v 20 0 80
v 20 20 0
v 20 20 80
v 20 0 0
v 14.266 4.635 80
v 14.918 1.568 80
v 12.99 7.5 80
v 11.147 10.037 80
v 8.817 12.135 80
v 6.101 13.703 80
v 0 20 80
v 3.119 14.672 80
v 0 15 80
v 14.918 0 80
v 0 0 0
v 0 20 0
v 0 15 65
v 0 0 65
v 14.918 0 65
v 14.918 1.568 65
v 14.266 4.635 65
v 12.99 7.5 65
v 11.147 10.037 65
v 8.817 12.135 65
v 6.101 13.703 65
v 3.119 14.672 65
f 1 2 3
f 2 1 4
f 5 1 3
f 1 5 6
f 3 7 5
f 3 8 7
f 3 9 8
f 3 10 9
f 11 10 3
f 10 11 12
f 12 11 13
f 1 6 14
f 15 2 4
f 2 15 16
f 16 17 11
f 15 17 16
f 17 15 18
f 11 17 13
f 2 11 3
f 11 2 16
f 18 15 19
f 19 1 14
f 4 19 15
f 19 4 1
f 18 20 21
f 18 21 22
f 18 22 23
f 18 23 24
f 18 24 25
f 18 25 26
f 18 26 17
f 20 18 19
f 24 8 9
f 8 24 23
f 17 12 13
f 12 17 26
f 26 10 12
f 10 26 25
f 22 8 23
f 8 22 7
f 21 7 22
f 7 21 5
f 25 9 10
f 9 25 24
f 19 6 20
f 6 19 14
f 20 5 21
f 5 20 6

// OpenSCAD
// Fork Parameters
fork_length = 80;
fork_width_handle = 20;
fork_width_tine = 10;
fork_tine_length = 50;
fork_tine_angle = 30;
fork_bowl_radius = 15;
fork_bowl_height = 15;

module fork() {
  difference() {
    union() {
      // Handle
      translate([0, 0, 0])
      cube([fork_width_handle, fork_width_handle, fork_length]);

      // Tines
      translate([fork_width_handle / 2, fork_width_handle / 2, fork_length - fork_tine_length])
      rotate([0, 0, fork_tine_angle])
      linear_extrude(height = fork_tine_length)
      polygon([
          [0, 0],
          [fork_width_tine / 2, fork_bowl_radius],
          [0, 0]
      ]);

      translate([0, -fork_width_handle / 2, fork_length - fork_tine_length])
      rotate([0, 0, -fork_tine_angle])
      linear_extrude(height = fork_tine_length)
      polygon([
          [0, 0],
          [fork_width_tine / 2, fork_bowl_radius],
          [0, 0]
      ]);
    }

    // Bowl
    translate([0, 0, fork_length - fork_bowl_height])
    rotate([0, 0, 90])
    cylinder(h = fork_bowl_height, r = fork_bowl_radius);
  }
}

fork();
